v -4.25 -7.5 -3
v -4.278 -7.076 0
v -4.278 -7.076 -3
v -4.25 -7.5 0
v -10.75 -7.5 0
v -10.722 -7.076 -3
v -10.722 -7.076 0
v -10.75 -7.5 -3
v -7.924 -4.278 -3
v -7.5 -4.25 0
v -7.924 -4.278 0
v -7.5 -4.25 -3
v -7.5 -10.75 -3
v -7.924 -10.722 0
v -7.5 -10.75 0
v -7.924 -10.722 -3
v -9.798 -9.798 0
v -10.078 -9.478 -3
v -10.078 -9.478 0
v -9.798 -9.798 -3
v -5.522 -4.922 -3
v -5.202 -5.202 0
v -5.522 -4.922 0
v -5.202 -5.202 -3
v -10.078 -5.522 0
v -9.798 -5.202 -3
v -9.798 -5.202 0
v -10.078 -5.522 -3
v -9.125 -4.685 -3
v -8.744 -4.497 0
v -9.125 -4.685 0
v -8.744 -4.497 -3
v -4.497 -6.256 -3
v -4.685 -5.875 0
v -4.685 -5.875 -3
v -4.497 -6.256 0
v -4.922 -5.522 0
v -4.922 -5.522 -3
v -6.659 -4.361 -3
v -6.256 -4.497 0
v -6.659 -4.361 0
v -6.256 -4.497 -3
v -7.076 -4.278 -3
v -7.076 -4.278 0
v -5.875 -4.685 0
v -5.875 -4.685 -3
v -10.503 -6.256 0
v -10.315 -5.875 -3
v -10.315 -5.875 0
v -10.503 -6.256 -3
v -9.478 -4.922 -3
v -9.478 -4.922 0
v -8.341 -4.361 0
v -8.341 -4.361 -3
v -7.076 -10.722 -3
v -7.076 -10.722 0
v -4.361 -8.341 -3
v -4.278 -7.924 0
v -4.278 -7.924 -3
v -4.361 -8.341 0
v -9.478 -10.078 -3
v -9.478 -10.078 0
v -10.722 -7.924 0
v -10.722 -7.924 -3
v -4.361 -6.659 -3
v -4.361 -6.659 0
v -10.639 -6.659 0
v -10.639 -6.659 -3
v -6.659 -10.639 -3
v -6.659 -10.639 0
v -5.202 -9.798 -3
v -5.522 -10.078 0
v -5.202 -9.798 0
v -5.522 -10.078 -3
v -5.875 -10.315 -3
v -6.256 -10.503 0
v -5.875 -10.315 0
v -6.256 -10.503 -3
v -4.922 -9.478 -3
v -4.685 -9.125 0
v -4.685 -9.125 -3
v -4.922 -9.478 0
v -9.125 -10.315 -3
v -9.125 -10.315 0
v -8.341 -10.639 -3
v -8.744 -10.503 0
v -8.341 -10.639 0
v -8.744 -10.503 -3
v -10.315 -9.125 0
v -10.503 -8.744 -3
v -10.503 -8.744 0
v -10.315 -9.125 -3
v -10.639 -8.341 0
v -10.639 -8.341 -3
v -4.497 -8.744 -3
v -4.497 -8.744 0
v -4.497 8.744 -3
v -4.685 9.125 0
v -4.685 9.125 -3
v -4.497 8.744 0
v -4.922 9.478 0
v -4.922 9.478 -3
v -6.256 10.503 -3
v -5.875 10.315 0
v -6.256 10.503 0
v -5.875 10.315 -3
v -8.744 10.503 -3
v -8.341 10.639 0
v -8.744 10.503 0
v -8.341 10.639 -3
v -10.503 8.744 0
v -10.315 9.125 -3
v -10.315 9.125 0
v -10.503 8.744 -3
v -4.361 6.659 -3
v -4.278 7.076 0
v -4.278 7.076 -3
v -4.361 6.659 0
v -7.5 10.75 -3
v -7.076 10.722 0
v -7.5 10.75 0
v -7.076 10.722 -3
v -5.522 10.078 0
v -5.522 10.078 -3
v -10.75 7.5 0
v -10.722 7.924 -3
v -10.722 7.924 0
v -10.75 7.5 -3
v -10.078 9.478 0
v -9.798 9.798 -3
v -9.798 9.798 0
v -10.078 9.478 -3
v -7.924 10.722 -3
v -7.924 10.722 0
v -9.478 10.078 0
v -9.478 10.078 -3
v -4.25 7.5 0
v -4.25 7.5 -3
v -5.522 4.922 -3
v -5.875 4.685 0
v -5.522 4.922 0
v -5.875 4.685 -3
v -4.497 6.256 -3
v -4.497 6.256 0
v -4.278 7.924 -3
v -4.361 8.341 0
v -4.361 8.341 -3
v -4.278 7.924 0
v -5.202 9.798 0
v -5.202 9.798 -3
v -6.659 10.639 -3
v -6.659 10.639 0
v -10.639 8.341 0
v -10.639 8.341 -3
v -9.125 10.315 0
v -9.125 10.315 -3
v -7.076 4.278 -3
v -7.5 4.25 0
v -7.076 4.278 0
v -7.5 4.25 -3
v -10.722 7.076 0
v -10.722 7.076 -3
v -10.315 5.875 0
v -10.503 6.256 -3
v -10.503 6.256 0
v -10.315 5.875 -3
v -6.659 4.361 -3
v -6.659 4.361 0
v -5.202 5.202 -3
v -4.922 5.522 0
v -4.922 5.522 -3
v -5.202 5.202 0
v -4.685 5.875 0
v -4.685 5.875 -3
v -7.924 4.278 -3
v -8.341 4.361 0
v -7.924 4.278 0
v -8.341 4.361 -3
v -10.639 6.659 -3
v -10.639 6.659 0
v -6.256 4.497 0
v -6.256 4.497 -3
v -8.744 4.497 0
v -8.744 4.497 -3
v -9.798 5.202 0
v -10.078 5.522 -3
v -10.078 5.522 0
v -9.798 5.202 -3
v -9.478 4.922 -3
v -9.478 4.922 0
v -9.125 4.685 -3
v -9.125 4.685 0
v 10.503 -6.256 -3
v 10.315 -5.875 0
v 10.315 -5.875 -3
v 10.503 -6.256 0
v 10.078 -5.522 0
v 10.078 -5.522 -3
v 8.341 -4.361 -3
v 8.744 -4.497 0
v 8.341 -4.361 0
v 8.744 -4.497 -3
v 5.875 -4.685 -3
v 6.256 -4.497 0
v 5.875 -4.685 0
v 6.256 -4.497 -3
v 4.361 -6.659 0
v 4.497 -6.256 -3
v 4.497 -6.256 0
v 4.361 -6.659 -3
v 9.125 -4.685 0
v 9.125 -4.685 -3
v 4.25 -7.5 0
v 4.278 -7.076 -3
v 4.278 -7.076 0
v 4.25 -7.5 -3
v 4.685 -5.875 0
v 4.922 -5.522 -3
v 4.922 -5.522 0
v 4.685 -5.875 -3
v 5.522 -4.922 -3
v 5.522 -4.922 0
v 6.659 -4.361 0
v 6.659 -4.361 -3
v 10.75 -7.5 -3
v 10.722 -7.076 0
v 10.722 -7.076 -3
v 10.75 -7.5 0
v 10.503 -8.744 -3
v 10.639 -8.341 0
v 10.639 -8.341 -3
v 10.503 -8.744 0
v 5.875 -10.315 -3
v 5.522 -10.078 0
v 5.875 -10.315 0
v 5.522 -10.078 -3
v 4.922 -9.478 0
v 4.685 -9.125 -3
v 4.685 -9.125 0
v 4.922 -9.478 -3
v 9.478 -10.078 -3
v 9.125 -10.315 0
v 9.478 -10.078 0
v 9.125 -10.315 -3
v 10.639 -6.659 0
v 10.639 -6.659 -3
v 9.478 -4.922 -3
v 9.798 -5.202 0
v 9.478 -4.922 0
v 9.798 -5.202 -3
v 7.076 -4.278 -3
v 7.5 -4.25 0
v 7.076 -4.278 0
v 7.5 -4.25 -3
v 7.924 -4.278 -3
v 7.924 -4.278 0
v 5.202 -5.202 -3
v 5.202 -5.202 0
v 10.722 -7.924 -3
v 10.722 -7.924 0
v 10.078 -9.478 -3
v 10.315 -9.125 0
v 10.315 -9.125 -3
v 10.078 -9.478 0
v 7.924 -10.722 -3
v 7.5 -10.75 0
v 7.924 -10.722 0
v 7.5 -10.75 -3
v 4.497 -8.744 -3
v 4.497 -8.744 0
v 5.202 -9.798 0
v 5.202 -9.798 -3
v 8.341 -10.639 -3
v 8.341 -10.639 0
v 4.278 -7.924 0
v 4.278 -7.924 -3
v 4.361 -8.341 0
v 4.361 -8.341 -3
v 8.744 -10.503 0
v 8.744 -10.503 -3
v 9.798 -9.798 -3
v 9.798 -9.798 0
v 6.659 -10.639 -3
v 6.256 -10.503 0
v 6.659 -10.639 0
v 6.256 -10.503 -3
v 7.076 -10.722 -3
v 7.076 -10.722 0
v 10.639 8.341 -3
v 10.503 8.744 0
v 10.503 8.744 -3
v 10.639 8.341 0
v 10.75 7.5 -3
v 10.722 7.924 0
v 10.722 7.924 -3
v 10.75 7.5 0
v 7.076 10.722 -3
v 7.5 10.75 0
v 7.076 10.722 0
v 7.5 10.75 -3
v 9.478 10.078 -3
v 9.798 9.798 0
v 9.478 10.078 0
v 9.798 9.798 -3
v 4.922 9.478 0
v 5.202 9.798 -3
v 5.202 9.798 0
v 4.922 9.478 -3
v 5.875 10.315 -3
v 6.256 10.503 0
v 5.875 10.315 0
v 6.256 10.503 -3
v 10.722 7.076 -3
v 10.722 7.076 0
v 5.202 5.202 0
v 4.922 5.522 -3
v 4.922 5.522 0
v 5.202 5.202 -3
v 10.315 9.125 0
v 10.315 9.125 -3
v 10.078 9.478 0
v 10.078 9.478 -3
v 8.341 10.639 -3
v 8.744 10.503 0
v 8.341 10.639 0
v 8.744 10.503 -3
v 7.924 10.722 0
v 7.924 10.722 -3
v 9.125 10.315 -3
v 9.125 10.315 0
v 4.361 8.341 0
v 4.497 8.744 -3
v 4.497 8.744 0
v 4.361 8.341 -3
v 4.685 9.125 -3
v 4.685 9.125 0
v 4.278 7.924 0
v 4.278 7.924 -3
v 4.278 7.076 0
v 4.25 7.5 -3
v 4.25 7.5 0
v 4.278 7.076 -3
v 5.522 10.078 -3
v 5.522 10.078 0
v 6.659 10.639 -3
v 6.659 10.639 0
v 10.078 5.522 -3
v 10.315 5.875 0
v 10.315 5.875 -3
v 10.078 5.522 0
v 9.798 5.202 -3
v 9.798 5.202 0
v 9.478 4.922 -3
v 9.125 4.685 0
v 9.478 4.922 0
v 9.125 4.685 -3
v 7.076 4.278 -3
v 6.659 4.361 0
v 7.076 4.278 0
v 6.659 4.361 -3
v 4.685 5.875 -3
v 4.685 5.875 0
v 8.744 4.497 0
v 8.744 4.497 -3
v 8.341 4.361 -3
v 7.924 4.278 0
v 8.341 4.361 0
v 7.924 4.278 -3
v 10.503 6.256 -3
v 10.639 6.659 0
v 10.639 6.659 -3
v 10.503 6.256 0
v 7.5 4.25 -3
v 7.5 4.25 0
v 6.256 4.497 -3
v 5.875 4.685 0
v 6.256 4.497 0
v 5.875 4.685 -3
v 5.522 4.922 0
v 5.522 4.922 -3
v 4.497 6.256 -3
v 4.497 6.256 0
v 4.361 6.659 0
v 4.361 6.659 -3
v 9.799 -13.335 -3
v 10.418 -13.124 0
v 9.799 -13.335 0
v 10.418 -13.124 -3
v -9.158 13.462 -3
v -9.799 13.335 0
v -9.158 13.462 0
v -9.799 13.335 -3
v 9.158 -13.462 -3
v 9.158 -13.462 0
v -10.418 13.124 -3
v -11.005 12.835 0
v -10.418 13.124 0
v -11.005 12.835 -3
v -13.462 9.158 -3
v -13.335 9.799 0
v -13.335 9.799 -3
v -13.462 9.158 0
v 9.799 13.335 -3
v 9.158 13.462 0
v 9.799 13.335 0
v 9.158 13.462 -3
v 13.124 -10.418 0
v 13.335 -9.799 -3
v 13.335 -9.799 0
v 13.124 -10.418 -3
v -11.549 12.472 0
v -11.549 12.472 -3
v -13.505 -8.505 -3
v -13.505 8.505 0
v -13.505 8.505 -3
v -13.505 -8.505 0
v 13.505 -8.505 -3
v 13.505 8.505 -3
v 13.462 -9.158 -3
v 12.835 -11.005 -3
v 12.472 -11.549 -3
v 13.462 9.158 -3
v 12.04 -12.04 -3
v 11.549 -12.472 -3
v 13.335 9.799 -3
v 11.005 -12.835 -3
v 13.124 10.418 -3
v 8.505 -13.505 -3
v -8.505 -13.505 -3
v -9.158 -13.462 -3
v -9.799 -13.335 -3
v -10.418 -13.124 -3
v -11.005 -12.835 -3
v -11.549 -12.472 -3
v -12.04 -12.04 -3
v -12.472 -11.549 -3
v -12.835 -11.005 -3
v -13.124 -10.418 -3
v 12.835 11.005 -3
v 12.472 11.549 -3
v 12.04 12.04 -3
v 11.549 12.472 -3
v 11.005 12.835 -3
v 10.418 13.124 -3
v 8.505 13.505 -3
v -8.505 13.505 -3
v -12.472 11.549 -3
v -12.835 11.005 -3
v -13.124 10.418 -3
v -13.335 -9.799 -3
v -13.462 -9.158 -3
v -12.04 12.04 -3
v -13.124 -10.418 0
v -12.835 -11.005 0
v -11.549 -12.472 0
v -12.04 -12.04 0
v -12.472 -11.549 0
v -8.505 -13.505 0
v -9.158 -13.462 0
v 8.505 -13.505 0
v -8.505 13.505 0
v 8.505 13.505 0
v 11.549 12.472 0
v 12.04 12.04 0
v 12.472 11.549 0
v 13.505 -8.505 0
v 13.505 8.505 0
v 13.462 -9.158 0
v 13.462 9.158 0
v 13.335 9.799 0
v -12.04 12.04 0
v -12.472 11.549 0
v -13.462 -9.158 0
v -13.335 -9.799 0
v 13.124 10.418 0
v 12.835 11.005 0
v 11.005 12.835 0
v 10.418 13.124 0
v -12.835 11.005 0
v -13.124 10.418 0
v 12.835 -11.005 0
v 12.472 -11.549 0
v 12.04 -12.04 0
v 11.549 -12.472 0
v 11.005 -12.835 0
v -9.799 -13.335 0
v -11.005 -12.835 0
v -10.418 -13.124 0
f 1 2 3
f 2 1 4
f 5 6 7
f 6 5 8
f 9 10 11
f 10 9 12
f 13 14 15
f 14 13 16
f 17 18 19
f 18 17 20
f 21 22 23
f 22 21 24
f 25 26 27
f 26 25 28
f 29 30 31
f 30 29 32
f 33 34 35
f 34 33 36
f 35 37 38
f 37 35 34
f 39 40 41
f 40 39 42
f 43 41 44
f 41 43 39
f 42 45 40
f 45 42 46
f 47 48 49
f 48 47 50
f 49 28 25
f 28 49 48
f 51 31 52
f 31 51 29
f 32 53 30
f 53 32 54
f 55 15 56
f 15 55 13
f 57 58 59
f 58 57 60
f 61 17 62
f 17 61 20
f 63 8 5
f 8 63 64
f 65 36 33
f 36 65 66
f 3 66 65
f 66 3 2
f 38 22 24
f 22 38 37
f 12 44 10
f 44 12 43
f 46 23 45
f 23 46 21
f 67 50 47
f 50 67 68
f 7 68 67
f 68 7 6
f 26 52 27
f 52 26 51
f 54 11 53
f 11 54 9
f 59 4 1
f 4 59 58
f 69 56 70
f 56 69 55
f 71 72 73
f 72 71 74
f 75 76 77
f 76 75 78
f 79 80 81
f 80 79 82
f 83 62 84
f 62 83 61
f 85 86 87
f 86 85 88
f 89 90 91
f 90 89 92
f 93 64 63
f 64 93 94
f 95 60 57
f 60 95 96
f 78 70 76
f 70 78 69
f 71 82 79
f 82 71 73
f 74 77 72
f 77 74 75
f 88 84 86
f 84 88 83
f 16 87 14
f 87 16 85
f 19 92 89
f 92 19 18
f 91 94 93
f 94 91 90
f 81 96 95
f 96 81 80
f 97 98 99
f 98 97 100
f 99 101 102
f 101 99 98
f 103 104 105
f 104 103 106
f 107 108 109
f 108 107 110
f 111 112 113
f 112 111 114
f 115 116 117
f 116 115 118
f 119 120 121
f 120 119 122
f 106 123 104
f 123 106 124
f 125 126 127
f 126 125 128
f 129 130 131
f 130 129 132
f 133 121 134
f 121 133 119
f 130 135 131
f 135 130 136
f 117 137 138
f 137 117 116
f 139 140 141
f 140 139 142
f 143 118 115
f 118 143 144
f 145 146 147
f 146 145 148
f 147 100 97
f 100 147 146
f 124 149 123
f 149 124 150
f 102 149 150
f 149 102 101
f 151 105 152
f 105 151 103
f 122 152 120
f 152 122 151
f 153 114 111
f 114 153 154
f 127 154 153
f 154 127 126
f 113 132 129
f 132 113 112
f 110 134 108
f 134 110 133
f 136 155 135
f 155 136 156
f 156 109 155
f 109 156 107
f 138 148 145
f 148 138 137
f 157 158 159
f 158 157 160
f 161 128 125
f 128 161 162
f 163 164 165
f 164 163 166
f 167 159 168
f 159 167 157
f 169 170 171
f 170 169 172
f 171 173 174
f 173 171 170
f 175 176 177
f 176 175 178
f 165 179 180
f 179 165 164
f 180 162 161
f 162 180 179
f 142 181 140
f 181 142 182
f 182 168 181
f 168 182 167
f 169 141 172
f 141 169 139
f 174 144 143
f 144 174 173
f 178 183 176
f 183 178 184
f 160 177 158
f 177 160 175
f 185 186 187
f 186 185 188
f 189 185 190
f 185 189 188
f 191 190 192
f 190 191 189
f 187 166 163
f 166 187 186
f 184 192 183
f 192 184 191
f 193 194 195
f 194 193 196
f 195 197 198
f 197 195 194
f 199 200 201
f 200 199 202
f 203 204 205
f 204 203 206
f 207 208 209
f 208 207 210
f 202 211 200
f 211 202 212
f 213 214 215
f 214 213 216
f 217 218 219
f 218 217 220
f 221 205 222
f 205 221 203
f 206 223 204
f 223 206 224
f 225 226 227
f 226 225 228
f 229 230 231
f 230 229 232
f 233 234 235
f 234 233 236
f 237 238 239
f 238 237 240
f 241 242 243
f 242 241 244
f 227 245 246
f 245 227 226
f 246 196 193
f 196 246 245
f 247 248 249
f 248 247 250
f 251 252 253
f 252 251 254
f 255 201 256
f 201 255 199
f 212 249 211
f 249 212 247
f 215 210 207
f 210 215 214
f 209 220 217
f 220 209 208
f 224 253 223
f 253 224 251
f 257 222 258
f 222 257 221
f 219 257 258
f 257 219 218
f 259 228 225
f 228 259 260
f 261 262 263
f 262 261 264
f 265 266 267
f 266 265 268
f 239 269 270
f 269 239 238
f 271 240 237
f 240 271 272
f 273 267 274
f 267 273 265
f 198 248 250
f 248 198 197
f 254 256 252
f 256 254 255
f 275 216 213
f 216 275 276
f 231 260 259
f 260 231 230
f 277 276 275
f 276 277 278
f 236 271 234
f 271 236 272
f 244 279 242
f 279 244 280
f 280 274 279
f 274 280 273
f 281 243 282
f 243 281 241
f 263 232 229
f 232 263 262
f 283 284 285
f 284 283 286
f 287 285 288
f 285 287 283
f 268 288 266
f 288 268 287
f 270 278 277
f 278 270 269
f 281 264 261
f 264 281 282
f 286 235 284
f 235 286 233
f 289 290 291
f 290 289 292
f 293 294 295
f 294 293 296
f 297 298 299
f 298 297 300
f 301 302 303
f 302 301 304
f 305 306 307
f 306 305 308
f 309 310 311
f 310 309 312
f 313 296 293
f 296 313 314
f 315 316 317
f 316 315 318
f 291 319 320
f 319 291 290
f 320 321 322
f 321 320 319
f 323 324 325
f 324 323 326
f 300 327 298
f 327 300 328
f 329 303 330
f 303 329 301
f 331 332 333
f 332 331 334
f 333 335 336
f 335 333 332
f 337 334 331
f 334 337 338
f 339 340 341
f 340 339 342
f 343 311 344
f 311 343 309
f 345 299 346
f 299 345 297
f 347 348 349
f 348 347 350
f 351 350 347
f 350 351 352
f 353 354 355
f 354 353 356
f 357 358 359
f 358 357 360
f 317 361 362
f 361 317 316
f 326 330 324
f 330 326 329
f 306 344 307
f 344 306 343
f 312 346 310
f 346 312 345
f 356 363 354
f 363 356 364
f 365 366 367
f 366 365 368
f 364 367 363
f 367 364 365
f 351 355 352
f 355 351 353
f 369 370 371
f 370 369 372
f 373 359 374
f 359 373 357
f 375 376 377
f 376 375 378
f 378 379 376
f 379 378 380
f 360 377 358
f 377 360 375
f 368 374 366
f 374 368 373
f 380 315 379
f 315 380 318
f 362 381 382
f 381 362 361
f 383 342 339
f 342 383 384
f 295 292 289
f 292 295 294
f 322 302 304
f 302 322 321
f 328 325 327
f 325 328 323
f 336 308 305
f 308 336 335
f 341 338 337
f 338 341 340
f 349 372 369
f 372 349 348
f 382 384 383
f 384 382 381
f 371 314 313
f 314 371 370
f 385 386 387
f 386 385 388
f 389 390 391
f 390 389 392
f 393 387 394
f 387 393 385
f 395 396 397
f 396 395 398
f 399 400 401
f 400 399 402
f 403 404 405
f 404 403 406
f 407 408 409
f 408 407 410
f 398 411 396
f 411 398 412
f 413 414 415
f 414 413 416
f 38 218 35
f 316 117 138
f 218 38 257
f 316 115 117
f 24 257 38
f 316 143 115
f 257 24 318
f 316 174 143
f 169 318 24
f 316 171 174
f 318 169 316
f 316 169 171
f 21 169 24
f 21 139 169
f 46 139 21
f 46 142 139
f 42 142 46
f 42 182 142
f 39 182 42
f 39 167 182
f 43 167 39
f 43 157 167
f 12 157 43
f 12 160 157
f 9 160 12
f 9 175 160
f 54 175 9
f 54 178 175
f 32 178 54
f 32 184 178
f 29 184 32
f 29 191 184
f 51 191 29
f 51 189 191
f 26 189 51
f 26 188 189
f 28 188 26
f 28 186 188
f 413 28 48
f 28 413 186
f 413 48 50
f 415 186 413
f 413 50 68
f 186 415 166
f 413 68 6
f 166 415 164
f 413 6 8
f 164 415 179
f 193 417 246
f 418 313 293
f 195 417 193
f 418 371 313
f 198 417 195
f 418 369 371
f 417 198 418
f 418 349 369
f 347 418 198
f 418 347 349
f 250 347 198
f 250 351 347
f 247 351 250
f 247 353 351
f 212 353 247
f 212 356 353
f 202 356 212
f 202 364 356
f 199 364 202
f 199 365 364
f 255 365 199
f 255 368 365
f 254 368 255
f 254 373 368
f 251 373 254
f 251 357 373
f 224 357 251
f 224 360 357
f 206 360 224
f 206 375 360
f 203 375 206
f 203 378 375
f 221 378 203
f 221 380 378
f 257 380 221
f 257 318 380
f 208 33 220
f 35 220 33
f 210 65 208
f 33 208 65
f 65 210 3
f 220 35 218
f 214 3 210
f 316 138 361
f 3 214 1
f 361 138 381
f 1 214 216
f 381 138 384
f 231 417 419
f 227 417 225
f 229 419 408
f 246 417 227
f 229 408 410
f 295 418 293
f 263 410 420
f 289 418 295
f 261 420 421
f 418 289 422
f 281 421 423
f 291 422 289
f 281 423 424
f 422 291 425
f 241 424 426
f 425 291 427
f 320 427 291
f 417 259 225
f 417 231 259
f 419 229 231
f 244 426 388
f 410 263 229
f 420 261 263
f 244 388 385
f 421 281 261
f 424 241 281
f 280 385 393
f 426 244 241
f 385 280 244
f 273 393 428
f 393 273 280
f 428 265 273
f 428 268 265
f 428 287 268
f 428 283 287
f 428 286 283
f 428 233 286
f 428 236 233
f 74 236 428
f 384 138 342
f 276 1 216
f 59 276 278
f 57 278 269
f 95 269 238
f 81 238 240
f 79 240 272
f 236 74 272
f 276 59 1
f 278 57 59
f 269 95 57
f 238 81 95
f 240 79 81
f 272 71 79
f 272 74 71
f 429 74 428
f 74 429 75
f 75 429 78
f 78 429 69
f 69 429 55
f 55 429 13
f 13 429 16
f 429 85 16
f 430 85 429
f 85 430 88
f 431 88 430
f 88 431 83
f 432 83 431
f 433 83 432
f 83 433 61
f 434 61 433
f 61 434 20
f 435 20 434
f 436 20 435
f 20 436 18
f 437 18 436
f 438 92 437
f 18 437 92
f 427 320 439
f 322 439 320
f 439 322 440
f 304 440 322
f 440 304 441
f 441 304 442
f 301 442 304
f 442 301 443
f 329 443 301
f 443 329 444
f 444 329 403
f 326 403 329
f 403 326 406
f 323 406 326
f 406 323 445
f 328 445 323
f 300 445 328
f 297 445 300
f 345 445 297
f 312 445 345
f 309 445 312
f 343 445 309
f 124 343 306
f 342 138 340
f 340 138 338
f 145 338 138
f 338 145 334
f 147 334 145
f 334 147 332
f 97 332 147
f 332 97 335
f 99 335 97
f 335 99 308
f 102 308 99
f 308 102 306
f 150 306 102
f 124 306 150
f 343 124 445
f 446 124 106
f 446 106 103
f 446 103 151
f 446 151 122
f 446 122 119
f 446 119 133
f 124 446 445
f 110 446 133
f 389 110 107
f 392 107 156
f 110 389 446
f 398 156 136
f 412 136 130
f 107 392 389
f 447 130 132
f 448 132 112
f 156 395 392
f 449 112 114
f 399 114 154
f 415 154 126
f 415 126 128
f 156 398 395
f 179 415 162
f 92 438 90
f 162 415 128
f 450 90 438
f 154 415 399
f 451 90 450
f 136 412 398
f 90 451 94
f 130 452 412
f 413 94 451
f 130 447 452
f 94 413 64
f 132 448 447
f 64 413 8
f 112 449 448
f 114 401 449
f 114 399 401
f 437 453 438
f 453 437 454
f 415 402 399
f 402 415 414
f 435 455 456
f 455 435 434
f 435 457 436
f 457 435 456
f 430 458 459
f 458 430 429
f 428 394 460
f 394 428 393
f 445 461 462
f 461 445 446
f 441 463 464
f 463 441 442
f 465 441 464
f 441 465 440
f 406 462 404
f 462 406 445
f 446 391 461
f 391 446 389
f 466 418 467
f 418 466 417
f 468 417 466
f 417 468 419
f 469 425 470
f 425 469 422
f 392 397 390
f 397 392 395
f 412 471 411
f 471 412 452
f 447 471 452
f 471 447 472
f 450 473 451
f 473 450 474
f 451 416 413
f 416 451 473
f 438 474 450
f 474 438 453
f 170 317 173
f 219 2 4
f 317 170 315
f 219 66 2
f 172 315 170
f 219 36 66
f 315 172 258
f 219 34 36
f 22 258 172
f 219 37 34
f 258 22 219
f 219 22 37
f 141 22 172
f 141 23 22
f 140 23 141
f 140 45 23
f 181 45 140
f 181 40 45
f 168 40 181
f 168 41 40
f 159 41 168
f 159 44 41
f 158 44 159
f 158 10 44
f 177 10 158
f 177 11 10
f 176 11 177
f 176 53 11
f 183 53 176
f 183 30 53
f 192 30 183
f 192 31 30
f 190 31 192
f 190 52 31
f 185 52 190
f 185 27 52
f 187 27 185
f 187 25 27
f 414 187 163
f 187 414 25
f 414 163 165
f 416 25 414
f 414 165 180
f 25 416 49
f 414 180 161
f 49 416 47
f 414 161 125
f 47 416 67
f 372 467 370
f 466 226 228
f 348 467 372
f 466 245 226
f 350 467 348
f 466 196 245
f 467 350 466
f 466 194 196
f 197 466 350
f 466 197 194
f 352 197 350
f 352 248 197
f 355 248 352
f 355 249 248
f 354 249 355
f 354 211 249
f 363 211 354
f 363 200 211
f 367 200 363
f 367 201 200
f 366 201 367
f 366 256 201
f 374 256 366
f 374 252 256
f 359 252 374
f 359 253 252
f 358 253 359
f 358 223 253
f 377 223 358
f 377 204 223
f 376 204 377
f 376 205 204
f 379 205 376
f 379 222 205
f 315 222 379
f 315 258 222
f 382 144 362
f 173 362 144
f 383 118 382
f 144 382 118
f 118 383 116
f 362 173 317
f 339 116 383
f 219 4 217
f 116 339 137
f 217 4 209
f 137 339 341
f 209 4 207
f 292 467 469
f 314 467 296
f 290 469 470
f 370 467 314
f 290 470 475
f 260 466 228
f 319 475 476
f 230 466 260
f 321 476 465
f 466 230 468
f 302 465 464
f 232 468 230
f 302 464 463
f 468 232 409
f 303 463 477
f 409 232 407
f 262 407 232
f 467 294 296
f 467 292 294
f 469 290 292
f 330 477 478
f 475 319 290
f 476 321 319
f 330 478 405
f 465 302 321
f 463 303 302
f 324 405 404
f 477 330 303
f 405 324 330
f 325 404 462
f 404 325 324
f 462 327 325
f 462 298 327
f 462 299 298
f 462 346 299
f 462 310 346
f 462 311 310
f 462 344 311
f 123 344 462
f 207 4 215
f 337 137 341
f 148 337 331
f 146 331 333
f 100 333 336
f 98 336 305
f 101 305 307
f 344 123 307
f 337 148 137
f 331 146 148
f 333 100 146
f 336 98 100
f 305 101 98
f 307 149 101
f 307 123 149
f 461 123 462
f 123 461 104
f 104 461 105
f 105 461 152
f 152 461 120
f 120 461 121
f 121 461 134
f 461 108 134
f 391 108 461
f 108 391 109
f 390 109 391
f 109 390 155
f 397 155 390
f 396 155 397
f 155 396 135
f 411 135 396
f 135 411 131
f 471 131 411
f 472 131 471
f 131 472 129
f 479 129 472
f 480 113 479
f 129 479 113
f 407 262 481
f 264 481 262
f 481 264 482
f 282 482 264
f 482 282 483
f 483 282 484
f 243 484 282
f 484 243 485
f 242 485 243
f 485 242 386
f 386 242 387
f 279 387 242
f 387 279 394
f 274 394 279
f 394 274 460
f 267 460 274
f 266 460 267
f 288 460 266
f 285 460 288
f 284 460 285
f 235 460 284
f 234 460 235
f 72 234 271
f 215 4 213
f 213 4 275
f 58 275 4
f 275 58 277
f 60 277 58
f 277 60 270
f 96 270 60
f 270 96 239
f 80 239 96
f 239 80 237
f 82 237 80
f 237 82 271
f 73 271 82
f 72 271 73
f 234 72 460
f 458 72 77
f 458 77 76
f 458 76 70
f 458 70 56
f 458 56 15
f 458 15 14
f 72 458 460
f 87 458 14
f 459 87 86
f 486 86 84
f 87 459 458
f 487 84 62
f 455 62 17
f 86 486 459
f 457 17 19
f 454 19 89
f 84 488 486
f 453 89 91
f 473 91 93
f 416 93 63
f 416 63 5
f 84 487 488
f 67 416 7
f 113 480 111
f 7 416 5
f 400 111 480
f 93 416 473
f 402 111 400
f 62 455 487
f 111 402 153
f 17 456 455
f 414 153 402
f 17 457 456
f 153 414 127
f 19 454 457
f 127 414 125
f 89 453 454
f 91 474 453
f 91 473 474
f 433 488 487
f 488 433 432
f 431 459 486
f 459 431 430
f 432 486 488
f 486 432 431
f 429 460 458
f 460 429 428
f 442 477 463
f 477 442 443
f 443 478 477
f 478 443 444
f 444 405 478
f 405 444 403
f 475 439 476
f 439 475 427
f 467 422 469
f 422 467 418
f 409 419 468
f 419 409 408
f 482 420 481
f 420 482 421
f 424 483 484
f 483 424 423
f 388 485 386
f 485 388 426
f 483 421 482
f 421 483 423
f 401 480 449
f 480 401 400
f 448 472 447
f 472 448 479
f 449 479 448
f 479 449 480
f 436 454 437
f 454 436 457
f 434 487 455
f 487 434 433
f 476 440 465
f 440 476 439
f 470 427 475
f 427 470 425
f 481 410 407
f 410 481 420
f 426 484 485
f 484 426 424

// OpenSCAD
$fn = 48;


difference() {
	union() {
		translate(v = [0, 0, 0]) {
			difference() {
				union() {
					color(alpha = 1.0000000000, c = "Gold") {
						translate(v = [0, 0, 0]) {
							rotate(a = [0, 0, 0]) {
								translate(v = [0, 0, -3]) {
									linear_extrude(height = 3) {
										offset(r = 5) {
											square(center = true, size = [17.0100000000, 17.0100000000]);
										}
									}
								}
							}
						}
					}
				}
				union() {
					color(alpha = 1.0000000000, c = "Gold") {
						translate(v = [-7.5000000000, -7.5000000000, 0]) {
							rotate(a = [0, 0, 0]) {
								translate(v = [0, 0, -250]) {
									cylinder(h = 500, r = 3.2500000000);
								}
							}
						}
					}
					color(alpha = 1.0000000000, c = "Gold") {
						translate(v = [-7.5000000000, 7.5000000000, 0]) {
							rotate(a = [0, 0, 0]) {
								translate(v = [0, 0, -250]) {
									cylinder(h = 500, r = 3.2500000000);
								}
							}
						}
					}
					color(alpha = 1.0000000000, c = "Gold") {
						translate(v = [7.5000000000, -7.5000000000, 0]) {
							rotate(a = [0, 0, 0]) {
								translate(v = [0, 0, -250]) {
									cylinder(h = 500, r = 3.2500000000);
								}
							}
						}
					}
					color(alpha = 1.0000000000, c = "Gold") {
						translate(v = [7.5000000000, 7.5000000000, 0]) {
							rotate(a = [0, 0, 0]) {
								translate(v = [0, 0, -250]) {
									cylinder(h = 500, r = 3.2500000000);
								}
							}
						}
					}
				}
			}
		}
	}
	union();
}
